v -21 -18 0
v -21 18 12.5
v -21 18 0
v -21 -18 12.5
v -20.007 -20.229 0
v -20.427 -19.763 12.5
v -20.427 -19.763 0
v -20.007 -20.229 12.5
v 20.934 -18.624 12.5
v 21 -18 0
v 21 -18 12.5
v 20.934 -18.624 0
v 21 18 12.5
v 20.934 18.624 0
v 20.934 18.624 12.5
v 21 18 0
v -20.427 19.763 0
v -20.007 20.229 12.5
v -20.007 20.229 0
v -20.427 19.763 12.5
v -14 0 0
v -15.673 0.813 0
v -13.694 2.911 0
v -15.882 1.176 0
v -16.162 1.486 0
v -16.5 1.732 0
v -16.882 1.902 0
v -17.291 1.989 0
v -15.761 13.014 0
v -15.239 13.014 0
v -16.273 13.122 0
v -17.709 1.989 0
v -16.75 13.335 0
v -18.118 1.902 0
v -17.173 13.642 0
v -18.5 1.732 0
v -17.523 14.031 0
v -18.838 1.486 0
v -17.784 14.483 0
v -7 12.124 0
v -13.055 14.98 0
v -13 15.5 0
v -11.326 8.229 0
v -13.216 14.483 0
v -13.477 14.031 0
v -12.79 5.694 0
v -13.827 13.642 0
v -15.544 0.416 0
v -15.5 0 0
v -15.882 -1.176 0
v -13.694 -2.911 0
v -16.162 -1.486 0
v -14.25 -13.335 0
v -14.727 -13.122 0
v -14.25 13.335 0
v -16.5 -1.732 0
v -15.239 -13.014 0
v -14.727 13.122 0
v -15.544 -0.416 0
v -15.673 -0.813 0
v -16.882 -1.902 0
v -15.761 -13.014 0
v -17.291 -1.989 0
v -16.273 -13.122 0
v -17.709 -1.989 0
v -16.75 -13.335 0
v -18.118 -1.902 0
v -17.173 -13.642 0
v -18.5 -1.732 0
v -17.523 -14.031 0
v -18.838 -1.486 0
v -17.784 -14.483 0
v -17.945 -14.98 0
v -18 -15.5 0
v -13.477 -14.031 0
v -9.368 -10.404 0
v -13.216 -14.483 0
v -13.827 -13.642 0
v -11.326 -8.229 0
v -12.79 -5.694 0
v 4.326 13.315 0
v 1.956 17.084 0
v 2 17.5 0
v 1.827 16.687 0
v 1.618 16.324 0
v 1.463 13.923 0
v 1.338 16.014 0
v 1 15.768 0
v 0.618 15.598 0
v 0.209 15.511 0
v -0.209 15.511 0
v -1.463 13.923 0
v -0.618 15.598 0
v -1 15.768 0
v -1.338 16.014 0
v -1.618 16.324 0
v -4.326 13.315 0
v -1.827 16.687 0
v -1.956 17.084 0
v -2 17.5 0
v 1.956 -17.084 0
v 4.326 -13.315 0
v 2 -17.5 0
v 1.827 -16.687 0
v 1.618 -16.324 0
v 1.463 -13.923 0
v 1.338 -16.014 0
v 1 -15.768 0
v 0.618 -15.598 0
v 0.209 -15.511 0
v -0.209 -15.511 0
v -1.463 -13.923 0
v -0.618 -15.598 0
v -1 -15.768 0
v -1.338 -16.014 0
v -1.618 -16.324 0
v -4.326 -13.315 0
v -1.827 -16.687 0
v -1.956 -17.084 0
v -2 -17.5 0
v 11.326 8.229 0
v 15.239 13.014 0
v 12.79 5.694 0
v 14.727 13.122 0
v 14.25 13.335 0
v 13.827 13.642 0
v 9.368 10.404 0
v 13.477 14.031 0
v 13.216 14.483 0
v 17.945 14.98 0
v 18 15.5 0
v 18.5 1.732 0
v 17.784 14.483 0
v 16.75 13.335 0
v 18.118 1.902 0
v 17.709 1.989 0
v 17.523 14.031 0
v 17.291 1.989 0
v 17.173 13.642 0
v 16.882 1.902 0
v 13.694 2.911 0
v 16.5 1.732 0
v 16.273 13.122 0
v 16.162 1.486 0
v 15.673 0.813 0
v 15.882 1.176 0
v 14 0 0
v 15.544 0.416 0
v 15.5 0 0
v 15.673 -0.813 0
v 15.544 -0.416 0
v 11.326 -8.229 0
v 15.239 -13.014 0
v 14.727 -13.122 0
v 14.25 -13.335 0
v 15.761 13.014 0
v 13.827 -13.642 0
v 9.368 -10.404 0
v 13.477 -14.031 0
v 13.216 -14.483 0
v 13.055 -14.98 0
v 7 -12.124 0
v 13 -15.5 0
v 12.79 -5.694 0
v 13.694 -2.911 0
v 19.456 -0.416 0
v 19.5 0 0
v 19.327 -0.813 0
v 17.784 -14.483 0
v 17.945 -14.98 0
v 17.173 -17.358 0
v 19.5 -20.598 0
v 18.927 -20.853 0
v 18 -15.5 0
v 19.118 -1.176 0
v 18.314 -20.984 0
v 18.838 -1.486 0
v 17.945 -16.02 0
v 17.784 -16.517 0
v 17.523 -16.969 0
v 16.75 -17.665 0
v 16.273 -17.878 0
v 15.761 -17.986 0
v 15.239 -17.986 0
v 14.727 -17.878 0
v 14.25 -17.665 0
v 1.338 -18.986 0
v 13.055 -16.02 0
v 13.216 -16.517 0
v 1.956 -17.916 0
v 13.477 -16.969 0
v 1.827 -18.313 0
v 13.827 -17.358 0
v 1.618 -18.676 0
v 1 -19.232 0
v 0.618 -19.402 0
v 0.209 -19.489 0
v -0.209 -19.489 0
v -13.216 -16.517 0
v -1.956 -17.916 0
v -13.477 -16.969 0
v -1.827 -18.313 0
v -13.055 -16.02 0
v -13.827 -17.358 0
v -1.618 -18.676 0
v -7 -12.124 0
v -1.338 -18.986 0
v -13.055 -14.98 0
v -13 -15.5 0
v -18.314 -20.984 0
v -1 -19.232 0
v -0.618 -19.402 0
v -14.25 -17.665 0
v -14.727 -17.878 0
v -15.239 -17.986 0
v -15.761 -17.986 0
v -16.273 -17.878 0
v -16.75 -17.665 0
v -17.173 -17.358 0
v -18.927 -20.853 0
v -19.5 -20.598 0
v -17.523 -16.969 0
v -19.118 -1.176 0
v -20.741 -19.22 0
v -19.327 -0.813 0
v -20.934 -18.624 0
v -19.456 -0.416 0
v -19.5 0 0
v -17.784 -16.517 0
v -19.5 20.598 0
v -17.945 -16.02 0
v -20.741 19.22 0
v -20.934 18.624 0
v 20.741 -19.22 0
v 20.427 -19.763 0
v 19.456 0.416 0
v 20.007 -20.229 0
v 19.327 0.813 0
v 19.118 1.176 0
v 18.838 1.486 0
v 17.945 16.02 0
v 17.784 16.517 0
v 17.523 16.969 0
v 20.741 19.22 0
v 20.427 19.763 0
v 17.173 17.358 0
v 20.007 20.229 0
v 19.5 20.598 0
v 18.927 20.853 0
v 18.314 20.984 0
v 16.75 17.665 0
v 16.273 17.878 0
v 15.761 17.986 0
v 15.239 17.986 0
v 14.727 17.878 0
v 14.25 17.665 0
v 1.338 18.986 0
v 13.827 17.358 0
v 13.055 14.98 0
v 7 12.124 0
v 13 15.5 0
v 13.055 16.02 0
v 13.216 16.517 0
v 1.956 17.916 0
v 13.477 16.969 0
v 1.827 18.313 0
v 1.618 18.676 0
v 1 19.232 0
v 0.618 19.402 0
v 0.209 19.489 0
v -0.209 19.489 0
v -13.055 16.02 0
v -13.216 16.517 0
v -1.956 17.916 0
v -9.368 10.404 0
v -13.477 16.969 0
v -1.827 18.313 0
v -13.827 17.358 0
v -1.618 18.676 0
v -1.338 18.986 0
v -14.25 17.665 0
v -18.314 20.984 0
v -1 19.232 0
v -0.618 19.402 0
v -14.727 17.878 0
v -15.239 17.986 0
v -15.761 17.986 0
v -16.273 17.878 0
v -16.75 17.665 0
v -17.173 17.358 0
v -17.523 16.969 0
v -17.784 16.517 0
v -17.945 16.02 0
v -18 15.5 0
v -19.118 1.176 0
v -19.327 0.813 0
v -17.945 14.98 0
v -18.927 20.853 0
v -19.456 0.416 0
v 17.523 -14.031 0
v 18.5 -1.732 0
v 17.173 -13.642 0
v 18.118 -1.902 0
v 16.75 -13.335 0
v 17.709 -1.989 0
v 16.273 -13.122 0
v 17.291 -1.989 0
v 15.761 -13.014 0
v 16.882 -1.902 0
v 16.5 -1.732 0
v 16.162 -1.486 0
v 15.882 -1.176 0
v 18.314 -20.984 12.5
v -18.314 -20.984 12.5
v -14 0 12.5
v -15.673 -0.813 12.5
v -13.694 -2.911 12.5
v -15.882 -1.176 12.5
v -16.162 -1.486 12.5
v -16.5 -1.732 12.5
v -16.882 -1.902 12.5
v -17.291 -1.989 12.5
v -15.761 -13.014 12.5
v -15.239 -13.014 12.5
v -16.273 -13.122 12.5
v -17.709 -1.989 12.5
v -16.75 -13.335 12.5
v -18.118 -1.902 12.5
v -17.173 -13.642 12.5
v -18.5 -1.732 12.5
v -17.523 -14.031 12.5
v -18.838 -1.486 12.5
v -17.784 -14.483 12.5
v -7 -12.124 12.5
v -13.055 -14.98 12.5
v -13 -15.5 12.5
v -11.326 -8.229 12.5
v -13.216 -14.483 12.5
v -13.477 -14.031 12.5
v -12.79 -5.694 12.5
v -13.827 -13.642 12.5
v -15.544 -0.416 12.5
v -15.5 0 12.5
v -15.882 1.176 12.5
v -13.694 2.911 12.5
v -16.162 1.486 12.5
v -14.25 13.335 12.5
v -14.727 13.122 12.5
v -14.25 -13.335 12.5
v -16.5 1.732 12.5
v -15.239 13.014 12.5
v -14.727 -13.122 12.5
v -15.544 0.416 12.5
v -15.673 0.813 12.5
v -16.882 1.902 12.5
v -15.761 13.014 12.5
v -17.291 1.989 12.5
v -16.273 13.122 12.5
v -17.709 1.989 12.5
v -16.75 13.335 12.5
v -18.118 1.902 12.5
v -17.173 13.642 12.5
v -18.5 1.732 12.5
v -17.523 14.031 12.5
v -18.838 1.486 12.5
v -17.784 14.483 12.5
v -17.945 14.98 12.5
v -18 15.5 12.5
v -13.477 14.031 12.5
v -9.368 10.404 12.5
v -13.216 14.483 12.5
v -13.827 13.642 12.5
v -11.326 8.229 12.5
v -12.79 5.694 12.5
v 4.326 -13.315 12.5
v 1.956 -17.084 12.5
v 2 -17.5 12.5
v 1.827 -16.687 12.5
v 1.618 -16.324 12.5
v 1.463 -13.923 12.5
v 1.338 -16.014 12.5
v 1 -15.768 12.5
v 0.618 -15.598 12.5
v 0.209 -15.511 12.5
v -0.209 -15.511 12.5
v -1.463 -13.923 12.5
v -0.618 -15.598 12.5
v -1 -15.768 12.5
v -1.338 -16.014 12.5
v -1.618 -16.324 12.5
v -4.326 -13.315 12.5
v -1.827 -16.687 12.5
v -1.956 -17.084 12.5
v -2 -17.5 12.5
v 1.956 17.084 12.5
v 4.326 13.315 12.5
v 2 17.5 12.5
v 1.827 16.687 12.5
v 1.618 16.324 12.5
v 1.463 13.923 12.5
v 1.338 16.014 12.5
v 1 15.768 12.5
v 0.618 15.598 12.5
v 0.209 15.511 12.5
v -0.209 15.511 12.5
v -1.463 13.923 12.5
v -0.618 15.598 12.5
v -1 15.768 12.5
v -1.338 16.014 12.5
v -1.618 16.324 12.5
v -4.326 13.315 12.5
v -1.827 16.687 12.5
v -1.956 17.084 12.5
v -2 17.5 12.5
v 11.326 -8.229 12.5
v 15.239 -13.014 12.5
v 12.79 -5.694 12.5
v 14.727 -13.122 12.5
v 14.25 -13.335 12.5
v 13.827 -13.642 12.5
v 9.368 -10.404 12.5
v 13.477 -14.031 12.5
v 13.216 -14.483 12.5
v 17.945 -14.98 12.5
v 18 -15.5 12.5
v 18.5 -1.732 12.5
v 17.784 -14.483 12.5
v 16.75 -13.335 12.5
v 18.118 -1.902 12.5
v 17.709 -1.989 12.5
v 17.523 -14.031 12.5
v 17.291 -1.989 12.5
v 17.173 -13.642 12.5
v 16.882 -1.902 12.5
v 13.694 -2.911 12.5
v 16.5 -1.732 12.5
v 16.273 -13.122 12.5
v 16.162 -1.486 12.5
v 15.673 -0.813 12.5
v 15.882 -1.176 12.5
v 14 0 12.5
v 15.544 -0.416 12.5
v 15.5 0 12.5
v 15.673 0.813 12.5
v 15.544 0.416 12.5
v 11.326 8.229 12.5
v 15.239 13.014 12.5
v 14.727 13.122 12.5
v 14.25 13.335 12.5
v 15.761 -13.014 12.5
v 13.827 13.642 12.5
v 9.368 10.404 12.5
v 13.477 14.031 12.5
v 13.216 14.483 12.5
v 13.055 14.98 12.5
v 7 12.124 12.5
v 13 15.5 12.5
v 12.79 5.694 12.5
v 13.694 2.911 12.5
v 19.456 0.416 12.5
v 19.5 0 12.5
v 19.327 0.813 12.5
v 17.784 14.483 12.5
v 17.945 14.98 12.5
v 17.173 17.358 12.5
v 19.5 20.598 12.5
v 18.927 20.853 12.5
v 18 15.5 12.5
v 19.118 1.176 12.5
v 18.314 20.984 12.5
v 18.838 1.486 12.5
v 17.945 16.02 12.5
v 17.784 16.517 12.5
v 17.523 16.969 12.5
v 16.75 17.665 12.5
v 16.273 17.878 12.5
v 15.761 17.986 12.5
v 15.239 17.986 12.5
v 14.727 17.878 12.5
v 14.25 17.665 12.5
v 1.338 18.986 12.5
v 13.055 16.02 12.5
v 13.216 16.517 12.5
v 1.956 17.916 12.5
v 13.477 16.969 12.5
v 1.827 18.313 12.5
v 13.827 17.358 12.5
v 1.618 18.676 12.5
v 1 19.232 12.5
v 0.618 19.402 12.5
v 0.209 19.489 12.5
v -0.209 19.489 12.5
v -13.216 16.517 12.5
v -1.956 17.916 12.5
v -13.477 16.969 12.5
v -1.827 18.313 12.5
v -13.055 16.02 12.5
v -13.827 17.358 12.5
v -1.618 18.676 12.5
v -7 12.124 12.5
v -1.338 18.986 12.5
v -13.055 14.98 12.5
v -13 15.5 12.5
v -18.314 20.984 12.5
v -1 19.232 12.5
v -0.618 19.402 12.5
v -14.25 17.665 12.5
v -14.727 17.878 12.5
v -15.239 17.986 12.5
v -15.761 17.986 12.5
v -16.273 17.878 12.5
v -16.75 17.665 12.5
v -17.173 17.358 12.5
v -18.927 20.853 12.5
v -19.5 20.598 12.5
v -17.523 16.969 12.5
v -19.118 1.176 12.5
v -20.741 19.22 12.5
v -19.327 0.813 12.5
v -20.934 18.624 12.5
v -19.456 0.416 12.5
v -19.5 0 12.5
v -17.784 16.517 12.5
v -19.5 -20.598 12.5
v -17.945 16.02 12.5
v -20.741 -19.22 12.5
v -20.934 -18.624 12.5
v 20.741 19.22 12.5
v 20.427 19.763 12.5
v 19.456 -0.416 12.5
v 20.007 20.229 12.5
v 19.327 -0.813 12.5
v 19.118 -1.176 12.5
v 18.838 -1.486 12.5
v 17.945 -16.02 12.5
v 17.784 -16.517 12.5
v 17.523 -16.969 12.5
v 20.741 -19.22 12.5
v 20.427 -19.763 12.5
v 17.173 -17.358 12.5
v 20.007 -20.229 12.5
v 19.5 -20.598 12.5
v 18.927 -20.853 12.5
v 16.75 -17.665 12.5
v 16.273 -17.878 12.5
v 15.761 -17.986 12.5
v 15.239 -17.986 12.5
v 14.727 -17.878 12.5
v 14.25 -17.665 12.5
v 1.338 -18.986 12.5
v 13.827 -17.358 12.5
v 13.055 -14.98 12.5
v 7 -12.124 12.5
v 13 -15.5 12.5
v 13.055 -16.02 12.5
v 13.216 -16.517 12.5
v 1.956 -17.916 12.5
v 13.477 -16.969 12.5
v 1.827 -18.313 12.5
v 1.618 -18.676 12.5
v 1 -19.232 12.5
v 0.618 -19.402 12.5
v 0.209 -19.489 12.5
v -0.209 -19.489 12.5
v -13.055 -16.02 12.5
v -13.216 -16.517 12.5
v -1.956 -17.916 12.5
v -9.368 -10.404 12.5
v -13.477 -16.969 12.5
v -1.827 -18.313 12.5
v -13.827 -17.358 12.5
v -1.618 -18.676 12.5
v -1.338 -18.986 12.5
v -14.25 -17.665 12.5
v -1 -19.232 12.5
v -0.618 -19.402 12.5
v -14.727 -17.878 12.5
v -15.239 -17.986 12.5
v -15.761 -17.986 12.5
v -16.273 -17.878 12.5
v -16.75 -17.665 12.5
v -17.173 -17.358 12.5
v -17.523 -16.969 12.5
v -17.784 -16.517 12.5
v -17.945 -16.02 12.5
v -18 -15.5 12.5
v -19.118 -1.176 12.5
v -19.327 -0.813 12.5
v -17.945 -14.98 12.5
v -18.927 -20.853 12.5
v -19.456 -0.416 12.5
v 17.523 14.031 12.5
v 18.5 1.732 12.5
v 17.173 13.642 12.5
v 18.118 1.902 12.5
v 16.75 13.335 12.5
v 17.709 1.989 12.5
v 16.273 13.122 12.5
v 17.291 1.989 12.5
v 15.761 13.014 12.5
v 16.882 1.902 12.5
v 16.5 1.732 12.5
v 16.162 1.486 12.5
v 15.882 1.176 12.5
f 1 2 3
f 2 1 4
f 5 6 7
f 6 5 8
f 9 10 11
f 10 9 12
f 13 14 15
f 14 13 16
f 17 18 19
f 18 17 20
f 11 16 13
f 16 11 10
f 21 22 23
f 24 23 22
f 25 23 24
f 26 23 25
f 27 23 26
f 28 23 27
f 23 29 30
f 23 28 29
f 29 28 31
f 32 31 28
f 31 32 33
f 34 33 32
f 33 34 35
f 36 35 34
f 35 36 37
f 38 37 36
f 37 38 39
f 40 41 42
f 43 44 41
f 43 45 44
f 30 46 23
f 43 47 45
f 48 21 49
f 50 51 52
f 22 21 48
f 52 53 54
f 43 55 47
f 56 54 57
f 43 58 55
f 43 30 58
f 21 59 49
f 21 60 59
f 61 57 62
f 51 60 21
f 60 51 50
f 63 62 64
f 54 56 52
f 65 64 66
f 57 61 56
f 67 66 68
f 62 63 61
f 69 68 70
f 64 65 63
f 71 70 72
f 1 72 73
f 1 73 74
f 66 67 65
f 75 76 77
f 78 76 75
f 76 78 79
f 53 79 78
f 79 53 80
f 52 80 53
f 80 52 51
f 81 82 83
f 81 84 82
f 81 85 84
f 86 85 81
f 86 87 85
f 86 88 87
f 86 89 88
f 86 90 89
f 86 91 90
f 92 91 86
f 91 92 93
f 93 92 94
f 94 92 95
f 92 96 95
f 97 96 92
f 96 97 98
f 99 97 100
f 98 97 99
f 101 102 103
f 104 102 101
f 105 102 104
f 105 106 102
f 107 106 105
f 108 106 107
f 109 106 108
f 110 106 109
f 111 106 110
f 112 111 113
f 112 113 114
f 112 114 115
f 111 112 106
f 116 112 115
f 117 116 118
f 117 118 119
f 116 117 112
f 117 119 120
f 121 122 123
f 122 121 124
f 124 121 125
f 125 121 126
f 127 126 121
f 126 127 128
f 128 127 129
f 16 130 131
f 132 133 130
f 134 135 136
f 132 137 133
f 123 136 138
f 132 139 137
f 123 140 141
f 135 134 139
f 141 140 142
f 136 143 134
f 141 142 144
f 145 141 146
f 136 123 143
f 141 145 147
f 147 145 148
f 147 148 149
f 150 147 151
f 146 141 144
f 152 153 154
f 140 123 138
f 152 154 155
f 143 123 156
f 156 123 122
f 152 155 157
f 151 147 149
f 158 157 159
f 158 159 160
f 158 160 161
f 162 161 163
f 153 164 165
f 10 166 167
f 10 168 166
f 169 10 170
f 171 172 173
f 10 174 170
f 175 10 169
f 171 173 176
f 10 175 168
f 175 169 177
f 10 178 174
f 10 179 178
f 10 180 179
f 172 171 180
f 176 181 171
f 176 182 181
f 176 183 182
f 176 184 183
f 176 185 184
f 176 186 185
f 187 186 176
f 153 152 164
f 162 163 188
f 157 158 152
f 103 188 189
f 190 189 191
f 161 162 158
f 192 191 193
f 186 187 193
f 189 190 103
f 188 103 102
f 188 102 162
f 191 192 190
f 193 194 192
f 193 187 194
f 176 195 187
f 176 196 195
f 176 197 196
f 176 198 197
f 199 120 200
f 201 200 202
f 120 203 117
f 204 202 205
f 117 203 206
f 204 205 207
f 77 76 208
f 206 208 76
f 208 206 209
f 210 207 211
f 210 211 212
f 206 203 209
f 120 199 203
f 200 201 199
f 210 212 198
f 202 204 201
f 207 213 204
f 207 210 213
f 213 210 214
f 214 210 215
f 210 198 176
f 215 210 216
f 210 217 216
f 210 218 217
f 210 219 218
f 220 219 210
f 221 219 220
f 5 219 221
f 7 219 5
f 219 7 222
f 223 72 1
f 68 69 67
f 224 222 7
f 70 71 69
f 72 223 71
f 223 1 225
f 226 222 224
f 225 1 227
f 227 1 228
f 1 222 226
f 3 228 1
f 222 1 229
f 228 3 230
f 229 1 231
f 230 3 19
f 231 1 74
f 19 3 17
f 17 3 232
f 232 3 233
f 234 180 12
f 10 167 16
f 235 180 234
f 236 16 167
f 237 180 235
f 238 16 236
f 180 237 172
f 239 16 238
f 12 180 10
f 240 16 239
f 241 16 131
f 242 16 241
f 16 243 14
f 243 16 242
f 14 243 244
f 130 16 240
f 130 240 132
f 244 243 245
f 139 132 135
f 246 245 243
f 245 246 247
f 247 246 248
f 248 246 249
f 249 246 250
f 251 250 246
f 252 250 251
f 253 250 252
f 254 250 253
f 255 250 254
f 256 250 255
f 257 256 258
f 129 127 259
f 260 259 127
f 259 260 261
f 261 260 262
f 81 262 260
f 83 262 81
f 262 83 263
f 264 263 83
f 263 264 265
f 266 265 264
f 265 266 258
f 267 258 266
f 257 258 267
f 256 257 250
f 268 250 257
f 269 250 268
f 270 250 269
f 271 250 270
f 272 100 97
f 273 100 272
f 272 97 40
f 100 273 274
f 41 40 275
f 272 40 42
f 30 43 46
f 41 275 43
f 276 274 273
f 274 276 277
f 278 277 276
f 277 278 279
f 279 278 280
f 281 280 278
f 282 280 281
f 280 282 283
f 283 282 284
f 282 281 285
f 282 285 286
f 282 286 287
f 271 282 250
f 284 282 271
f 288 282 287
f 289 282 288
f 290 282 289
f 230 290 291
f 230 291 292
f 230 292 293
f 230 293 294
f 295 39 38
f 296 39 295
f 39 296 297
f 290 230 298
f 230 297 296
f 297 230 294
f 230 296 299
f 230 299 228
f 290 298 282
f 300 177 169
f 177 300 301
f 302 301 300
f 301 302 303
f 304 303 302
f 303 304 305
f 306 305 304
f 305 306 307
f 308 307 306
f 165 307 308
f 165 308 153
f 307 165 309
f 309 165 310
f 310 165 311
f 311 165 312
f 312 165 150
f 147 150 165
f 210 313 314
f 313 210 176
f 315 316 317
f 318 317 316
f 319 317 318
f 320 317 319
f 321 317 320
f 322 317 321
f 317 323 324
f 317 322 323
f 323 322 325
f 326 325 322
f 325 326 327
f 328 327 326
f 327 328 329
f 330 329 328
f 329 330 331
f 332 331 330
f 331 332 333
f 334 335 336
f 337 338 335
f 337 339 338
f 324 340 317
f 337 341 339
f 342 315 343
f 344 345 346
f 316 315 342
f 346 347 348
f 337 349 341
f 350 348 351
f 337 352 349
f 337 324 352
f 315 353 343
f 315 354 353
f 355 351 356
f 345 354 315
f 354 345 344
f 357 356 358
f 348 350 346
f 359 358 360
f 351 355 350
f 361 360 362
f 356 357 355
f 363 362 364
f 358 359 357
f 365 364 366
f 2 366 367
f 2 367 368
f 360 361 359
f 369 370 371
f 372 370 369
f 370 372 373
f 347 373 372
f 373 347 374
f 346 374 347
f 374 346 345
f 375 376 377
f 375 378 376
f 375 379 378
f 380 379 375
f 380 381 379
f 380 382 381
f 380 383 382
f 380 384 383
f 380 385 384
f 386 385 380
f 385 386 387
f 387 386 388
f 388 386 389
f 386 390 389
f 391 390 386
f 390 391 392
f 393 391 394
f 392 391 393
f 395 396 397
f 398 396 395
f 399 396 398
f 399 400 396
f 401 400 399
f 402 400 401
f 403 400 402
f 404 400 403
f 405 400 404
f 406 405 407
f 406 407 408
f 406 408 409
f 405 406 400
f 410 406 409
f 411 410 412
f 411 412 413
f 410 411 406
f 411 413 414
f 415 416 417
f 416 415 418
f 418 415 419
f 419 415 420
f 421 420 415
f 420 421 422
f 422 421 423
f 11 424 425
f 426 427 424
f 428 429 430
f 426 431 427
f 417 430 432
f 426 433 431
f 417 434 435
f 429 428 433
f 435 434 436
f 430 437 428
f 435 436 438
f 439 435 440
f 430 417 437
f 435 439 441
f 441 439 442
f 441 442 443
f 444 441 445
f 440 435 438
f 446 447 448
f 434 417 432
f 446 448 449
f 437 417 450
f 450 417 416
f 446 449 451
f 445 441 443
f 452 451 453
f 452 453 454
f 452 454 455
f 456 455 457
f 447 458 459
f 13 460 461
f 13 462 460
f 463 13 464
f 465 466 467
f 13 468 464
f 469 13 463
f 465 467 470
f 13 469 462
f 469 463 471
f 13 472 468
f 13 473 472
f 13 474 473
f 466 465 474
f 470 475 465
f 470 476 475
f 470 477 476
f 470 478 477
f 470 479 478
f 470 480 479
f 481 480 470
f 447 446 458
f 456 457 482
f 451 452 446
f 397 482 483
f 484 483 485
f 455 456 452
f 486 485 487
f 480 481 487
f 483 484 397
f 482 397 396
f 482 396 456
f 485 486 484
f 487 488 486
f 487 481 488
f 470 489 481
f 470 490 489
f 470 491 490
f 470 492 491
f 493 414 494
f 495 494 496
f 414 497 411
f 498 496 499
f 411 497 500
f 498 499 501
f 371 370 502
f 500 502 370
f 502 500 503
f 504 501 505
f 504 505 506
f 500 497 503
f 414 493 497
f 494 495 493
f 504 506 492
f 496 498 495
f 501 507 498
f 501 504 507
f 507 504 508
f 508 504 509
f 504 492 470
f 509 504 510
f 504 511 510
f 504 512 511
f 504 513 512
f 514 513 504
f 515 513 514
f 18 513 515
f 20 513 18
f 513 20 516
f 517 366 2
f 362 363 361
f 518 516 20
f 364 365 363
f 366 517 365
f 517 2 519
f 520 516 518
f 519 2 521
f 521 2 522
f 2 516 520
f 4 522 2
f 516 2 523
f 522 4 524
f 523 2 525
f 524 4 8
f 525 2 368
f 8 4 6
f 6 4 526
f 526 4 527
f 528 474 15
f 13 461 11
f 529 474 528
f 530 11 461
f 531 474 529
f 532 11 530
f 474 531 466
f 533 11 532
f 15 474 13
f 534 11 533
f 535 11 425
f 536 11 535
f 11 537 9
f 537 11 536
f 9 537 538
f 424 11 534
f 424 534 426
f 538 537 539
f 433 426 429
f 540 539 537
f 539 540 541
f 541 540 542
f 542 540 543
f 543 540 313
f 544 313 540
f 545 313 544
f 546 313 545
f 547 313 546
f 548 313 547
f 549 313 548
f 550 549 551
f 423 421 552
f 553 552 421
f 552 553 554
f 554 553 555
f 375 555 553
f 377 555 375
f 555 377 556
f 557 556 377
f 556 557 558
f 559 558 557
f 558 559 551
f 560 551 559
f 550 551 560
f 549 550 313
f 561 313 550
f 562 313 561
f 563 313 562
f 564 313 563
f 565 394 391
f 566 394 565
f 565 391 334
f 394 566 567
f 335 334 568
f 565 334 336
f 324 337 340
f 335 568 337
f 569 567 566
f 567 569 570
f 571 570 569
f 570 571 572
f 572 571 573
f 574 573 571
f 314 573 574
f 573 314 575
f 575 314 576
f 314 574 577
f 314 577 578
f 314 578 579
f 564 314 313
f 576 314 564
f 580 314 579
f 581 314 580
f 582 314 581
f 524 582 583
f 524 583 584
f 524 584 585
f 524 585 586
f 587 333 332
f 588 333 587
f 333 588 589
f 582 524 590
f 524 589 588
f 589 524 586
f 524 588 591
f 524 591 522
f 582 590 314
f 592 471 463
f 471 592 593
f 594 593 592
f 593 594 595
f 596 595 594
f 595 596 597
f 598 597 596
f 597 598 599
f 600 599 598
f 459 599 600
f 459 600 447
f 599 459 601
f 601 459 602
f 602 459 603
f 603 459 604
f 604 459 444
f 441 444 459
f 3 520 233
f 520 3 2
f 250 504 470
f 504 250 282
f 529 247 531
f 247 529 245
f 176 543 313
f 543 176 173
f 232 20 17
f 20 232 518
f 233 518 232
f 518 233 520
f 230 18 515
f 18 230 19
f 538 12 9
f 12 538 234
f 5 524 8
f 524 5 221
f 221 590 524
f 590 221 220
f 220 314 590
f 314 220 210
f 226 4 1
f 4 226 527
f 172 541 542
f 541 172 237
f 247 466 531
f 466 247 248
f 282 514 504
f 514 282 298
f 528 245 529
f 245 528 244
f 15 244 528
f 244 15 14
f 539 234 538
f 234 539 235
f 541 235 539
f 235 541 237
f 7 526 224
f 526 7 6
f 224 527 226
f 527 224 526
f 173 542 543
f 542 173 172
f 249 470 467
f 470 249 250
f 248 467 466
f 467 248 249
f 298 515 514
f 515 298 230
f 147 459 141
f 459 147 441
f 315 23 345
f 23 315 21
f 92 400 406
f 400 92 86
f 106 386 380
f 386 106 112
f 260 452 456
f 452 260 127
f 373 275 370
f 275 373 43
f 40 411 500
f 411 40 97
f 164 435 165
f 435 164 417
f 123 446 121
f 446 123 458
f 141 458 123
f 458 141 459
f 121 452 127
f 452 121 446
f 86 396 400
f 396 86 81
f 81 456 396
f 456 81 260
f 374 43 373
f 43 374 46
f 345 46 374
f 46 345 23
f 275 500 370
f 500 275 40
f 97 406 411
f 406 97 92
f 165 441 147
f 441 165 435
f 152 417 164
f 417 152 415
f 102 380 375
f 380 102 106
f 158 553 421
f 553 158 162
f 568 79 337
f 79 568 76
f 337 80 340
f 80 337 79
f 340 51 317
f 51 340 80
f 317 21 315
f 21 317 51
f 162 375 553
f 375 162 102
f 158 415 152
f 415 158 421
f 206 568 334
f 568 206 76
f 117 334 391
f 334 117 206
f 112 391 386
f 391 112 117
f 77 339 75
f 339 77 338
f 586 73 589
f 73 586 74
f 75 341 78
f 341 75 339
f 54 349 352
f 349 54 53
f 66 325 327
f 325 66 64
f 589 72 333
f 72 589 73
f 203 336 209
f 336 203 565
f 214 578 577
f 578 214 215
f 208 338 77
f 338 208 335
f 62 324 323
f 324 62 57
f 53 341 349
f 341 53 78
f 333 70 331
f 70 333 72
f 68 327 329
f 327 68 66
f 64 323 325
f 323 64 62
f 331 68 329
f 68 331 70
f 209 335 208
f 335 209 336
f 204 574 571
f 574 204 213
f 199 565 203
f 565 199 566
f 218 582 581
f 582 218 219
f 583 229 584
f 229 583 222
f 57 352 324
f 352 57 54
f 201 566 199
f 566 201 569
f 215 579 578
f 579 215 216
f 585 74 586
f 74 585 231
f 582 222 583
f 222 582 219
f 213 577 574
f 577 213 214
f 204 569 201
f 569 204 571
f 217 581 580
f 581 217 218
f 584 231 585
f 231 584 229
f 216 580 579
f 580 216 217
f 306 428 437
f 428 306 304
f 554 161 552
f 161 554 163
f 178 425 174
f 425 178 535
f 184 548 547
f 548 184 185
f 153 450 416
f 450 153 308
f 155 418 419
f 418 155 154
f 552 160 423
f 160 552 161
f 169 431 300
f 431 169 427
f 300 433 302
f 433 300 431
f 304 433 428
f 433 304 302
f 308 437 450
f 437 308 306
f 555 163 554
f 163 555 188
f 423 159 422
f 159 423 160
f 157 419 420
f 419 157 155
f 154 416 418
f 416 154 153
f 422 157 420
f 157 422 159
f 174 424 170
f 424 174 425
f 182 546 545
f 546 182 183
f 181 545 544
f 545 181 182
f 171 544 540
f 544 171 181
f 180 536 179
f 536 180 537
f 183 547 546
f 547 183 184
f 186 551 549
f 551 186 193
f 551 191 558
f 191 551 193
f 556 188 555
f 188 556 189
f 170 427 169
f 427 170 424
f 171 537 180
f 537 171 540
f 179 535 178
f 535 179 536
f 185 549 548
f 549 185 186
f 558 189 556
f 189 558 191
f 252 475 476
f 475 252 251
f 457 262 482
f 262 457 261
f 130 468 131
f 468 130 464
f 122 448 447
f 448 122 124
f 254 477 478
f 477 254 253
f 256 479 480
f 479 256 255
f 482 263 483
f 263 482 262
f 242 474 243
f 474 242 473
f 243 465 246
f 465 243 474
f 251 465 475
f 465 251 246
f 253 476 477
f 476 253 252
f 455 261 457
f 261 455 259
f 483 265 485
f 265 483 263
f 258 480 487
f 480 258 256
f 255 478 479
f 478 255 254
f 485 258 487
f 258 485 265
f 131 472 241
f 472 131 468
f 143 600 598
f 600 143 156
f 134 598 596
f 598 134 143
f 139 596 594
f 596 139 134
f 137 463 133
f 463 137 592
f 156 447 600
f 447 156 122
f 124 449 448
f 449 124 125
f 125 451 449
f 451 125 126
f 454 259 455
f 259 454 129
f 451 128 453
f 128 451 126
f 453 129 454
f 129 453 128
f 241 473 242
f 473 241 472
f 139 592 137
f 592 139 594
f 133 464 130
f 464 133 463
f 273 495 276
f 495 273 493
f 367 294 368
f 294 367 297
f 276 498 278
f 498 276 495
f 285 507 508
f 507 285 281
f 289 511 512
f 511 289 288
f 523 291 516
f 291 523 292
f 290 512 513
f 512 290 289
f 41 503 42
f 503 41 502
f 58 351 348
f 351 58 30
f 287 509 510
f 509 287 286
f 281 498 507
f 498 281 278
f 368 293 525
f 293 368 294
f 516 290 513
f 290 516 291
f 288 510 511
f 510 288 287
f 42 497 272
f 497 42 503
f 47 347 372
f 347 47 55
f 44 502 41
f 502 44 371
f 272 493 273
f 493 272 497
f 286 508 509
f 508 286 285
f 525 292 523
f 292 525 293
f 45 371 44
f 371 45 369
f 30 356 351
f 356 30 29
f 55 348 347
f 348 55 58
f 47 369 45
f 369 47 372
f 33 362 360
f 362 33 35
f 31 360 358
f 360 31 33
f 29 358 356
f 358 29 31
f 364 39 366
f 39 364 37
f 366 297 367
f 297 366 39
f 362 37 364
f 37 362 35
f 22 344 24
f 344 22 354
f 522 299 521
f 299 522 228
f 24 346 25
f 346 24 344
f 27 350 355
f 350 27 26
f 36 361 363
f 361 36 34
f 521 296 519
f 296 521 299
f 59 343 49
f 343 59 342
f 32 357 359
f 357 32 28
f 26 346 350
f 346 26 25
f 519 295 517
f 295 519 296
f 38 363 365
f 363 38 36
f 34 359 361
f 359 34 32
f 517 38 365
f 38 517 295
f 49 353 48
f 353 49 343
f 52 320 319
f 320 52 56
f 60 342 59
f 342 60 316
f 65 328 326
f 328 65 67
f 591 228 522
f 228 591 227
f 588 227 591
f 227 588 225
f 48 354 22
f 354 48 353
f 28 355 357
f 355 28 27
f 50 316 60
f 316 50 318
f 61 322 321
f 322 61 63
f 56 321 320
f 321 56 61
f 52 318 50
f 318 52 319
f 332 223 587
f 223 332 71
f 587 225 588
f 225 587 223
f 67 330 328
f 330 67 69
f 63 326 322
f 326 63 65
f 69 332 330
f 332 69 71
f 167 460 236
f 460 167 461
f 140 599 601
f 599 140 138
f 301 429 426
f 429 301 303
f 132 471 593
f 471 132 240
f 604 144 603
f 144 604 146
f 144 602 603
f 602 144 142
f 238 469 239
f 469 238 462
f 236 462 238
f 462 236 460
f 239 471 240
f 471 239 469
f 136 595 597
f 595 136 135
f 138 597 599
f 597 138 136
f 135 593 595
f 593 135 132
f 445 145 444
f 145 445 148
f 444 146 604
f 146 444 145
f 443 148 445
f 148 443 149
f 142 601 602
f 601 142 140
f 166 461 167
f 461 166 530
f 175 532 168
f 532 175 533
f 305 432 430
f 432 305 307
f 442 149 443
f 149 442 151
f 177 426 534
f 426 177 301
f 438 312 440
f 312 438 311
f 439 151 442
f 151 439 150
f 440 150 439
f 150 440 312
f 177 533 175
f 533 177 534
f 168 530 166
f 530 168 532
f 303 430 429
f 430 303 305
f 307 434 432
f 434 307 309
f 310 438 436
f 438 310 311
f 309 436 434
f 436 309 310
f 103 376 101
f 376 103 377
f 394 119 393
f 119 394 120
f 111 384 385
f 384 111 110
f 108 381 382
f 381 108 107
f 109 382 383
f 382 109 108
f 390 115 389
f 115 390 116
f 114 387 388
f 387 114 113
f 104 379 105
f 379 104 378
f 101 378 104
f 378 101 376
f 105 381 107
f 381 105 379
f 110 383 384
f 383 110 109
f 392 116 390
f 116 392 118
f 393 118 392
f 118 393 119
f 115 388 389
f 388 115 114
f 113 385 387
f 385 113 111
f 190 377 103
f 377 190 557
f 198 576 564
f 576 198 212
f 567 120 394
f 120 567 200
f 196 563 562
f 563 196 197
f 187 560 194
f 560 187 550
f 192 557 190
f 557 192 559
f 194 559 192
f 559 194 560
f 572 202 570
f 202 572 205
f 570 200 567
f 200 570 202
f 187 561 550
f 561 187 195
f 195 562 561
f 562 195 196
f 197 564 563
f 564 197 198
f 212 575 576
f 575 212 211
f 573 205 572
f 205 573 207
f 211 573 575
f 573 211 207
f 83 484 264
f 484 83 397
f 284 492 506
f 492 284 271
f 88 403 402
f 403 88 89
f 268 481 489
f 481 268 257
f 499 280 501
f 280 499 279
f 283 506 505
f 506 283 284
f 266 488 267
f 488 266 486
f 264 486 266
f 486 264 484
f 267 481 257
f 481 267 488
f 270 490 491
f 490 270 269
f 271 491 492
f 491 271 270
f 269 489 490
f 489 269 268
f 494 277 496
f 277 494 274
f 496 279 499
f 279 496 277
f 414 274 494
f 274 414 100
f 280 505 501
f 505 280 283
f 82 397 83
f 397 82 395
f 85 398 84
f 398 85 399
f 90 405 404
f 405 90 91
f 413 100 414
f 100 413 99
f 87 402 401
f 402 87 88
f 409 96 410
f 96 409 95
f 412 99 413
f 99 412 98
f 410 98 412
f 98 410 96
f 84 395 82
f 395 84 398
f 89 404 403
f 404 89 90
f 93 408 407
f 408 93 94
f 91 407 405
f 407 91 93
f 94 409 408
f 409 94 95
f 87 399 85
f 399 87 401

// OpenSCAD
difference(){
hull(){
translate([-42/2+3,-42/2+3,0])cylinder(r=3,h=4.5*2+3.5,$fn=30);
translate([+42/2-3,-42/2+3,0])cylinder(r=3,h=4.5*2+3.5,$fn=30);
translate([-42/2+3,+42/2-3,0])cylinder(r=3,h=4.5*2+3.5,$fn=30);
translate([+42/2-3,+42/2-3,0])cylinder(r=3,h=4.5*2+3.5,$fn=30);
};
translate([0,0,-1])cylinder(r=28/2,h=15,$fn=30);

translate([-31/2,-31/2,-1])cylinder(r=2.5,h=15,$fn=30);
translate([+31/2,-31/2,-1])cylinder(r=2.5,h=15,$fn=30);
translate([+31/2,+31/2,-1])cylinder(r=2.5,h=15,$fn=30);
translate([-31/2,+31/2,-1])cylinder(r=2.5,h=15,$fn=30);





translate([-35/2,0,-3])cylinder(r=2,h=17,$fn=30);
translate([+35/2,0,-3])cylinder(r=2,h=17,$fn=30);
translate([0,-35/2,-3])cylinder(r=2,h=17,$fn=30);
translate([0,+35/2,-3])cylinder(r=2,h=17,$fn=30);

}
